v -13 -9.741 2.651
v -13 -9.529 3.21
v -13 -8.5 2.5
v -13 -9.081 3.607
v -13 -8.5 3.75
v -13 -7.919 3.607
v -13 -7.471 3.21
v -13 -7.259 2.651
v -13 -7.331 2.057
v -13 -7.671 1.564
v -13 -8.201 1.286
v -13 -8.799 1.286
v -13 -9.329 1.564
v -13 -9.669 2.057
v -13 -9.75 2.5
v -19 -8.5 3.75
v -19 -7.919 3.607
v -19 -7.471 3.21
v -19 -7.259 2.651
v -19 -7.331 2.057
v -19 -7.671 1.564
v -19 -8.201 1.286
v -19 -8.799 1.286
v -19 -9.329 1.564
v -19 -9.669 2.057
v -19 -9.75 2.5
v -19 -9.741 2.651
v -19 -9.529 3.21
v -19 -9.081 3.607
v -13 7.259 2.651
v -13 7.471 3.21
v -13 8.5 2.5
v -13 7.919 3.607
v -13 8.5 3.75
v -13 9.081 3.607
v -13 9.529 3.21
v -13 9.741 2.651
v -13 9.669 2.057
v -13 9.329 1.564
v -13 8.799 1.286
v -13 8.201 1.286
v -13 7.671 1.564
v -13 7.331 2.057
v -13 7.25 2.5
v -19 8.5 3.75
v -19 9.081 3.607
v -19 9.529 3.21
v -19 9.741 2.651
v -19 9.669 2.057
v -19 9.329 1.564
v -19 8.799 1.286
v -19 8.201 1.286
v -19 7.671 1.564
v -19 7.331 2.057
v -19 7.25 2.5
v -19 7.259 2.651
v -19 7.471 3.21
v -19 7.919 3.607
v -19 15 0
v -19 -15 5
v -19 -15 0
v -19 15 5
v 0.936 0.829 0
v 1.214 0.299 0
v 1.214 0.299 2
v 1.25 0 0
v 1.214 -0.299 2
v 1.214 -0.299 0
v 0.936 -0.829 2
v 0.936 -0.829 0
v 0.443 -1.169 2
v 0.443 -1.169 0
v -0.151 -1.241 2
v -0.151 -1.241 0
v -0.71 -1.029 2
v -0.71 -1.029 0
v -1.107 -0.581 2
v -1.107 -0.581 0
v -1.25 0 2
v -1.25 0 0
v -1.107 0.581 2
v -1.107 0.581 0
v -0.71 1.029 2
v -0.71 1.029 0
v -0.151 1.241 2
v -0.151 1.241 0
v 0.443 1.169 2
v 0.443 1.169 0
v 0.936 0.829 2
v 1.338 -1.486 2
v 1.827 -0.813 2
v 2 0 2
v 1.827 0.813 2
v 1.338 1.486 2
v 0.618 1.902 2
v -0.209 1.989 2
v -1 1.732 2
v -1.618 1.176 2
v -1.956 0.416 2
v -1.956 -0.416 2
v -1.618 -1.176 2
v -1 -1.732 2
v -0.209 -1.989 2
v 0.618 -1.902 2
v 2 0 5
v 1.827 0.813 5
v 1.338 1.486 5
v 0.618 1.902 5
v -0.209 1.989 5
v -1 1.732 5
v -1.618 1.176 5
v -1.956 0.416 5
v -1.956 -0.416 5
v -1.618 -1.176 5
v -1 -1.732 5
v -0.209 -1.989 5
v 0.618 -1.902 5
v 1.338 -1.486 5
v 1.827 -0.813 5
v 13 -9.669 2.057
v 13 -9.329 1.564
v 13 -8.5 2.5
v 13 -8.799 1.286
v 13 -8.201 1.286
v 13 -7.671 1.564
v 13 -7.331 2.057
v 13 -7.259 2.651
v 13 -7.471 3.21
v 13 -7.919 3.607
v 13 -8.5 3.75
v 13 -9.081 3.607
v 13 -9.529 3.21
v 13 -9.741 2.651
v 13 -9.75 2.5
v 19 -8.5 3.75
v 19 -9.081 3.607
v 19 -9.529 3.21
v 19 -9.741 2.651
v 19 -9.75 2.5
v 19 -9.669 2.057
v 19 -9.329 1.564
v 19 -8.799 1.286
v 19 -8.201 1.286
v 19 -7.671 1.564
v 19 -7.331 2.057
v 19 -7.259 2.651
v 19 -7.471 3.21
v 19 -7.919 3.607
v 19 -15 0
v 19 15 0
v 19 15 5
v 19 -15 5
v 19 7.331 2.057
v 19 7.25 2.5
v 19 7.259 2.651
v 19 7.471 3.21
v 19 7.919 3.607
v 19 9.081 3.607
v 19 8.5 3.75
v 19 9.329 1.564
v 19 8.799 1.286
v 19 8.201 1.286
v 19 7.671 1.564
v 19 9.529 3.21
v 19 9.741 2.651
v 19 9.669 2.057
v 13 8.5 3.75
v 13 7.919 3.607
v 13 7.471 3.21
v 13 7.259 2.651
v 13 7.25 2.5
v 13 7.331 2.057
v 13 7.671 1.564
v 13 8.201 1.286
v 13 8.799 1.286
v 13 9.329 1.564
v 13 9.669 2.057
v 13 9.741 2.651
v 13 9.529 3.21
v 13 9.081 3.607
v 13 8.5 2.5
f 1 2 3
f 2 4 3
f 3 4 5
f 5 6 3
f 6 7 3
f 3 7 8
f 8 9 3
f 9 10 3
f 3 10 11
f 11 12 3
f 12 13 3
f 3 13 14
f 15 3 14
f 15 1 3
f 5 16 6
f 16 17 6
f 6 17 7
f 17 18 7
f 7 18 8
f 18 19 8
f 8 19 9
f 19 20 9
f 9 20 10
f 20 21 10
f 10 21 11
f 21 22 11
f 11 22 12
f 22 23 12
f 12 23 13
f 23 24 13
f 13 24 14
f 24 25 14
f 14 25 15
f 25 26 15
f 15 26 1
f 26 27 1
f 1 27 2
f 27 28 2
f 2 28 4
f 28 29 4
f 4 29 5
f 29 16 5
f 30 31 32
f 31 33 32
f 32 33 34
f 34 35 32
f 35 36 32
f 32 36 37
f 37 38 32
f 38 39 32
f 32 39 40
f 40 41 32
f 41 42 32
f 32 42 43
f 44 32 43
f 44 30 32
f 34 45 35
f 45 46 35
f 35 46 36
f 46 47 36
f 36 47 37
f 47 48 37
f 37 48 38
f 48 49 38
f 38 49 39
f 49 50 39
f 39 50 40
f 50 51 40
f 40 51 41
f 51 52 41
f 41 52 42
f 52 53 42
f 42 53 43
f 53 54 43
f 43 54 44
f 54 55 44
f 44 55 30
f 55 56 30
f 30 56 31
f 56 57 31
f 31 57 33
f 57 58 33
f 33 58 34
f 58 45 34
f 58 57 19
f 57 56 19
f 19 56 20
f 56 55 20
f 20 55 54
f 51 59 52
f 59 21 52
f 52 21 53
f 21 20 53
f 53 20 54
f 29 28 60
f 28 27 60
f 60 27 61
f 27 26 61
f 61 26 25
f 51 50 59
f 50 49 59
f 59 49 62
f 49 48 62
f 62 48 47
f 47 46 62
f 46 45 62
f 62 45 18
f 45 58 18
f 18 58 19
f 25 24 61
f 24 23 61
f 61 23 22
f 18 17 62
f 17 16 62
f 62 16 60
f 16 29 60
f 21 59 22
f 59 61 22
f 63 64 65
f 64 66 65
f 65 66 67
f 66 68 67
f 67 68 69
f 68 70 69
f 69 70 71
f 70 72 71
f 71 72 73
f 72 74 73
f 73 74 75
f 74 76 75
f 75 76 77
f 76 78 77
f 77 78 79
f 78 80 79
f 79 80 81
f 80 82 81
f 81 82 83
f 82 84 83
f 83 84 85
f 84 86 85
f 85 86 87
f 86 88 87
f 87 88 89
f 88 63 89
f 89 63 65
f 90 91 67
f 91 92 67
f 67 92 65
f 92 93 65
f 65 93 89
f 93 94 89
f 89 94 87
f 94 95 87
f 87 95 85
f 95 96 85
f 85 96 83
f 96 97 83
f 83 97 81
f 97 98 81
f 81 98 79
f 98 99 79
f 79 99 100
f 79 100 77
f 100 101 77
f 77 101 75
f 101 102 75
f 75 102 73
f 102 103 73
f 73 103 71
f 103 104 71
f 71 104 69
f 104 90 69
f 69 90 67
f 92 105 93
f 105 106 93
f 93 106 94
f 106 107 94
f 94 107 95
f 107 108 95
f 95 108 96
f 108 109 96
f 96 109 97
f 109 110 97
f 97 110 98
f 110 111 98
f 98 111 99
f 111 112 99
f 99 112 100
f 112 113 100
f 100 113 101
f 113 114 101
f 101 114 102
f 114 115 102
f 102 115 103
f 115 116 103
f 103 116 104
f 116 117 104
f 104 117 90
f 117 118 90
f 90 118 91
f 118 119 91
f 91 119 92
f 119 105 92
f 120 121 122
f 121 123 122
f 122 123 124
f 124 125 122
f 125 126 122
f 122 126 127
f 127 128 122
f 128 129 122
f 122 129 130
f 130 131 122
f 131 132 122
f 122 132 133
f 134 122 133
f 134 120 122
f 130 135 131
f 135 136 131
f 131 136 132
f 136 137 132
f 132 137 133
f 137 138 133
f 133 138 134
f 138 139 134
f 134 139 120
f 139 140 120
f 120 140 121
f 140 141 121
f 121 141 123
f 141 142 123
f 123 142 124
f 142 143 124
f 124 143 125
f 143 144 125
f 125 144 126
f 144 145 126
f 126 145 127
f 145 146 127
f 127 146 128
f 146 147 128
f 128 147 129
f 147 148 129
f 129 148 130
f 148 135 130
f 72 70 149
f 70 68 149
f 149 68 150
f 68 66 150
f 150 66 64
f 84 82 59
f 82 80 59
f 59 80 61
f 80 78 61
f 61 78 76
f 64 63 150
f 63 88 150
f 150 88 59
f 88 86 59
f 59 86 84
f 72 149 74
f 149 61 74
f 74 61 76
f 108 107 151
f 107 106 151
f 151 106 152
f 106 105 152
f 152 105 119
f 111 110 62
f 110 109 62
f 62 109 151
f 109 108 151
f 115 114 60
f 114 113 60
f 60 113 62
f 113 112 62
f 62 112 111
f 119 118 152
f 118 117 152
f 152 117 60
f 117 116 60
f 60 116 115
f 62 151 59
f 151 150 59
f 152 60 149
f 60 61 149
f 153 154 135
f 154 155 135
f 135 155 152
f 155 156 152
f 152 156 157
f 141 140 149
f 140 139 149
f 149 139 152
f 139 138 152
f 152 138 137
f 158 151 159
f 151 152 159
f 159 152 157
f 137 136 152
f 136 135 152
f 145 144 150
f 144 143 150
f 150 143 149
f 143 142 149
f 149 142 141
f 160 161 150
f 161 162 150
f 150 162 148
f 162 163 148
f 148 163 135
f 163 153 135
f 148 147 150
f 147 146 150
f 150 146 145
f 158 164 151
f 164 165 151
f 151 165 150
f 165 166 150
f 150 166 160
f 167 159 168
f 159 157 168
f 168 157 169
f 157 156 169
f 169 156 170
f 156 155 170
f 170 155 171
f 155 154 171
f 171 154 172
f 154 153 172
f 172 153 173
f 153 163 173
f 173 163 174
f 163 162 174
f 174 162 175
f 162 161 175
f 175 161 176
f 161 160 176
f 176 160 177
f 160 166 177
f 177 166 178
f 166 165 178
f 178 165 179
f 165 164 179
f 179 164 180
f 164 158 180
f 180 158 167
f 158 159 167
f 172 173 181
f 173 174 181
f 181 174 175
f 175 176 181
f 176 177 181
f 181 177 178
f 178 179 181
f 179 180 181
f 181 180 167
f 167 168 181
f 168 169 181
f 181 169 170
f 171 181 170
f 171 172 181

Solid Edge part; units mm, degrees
sketch "Sketch1" plane through (0, 0, 0) normal (0, 0, 1) x (1, 0, 0)
  line L0 (-19, -15) -> (19, -15)
  line L1 (19, -15) -> (19, 15)
  line L2 (19, 15) -> (-19, 15)
  line L3 (-19, 15) -> (-19, -15)
  dimension "D1" = 38
  dimension "D2" = 30
extrude "Protrusion1" add sketch "Sketch1" along normal blind 5
sketch "Sketch2" plane through (-19, 0, 2.5) normal (-1, 0, 0) x (0, -1, 0)
  circle A0 centre (-8.5, 0) radius 1.25
  circle A1 centre (8.5, 0) radius 1.25
  dimension "D1" = 2.5
  dimension "D2" = 8.5
  dimension "D3" = 8.5
extrude "ExtrudedCutout_1" cut sketch "Sketch2" against normal blind 6
mirror "Mirror1" about plane through (0, 0, 0) normal (1, 0, 0) of "ExtrudedCutout_1"
sketch "Sketch3" plane through (0, 0, 5) normal (0, 0, 1) x (1, 0, 0)
  circle A0 centre (0, 0) radius 2
  dimension "D1" = 4
extrude "ExtrudedCutout_2" cut sketch "Sketch3" against normal blind 3
sketch "Sketch4" plane through (0, 0, 0) normal (0, 0, -1) x (1, 0, 0)
  circle A0 centre (0, 0) radius 1.25
  dimension "D1" = 2.5
extrude "Cutout1" cut sketch "Sketch4" against normal through all
properties material "ABS Plastic, medium impact"
